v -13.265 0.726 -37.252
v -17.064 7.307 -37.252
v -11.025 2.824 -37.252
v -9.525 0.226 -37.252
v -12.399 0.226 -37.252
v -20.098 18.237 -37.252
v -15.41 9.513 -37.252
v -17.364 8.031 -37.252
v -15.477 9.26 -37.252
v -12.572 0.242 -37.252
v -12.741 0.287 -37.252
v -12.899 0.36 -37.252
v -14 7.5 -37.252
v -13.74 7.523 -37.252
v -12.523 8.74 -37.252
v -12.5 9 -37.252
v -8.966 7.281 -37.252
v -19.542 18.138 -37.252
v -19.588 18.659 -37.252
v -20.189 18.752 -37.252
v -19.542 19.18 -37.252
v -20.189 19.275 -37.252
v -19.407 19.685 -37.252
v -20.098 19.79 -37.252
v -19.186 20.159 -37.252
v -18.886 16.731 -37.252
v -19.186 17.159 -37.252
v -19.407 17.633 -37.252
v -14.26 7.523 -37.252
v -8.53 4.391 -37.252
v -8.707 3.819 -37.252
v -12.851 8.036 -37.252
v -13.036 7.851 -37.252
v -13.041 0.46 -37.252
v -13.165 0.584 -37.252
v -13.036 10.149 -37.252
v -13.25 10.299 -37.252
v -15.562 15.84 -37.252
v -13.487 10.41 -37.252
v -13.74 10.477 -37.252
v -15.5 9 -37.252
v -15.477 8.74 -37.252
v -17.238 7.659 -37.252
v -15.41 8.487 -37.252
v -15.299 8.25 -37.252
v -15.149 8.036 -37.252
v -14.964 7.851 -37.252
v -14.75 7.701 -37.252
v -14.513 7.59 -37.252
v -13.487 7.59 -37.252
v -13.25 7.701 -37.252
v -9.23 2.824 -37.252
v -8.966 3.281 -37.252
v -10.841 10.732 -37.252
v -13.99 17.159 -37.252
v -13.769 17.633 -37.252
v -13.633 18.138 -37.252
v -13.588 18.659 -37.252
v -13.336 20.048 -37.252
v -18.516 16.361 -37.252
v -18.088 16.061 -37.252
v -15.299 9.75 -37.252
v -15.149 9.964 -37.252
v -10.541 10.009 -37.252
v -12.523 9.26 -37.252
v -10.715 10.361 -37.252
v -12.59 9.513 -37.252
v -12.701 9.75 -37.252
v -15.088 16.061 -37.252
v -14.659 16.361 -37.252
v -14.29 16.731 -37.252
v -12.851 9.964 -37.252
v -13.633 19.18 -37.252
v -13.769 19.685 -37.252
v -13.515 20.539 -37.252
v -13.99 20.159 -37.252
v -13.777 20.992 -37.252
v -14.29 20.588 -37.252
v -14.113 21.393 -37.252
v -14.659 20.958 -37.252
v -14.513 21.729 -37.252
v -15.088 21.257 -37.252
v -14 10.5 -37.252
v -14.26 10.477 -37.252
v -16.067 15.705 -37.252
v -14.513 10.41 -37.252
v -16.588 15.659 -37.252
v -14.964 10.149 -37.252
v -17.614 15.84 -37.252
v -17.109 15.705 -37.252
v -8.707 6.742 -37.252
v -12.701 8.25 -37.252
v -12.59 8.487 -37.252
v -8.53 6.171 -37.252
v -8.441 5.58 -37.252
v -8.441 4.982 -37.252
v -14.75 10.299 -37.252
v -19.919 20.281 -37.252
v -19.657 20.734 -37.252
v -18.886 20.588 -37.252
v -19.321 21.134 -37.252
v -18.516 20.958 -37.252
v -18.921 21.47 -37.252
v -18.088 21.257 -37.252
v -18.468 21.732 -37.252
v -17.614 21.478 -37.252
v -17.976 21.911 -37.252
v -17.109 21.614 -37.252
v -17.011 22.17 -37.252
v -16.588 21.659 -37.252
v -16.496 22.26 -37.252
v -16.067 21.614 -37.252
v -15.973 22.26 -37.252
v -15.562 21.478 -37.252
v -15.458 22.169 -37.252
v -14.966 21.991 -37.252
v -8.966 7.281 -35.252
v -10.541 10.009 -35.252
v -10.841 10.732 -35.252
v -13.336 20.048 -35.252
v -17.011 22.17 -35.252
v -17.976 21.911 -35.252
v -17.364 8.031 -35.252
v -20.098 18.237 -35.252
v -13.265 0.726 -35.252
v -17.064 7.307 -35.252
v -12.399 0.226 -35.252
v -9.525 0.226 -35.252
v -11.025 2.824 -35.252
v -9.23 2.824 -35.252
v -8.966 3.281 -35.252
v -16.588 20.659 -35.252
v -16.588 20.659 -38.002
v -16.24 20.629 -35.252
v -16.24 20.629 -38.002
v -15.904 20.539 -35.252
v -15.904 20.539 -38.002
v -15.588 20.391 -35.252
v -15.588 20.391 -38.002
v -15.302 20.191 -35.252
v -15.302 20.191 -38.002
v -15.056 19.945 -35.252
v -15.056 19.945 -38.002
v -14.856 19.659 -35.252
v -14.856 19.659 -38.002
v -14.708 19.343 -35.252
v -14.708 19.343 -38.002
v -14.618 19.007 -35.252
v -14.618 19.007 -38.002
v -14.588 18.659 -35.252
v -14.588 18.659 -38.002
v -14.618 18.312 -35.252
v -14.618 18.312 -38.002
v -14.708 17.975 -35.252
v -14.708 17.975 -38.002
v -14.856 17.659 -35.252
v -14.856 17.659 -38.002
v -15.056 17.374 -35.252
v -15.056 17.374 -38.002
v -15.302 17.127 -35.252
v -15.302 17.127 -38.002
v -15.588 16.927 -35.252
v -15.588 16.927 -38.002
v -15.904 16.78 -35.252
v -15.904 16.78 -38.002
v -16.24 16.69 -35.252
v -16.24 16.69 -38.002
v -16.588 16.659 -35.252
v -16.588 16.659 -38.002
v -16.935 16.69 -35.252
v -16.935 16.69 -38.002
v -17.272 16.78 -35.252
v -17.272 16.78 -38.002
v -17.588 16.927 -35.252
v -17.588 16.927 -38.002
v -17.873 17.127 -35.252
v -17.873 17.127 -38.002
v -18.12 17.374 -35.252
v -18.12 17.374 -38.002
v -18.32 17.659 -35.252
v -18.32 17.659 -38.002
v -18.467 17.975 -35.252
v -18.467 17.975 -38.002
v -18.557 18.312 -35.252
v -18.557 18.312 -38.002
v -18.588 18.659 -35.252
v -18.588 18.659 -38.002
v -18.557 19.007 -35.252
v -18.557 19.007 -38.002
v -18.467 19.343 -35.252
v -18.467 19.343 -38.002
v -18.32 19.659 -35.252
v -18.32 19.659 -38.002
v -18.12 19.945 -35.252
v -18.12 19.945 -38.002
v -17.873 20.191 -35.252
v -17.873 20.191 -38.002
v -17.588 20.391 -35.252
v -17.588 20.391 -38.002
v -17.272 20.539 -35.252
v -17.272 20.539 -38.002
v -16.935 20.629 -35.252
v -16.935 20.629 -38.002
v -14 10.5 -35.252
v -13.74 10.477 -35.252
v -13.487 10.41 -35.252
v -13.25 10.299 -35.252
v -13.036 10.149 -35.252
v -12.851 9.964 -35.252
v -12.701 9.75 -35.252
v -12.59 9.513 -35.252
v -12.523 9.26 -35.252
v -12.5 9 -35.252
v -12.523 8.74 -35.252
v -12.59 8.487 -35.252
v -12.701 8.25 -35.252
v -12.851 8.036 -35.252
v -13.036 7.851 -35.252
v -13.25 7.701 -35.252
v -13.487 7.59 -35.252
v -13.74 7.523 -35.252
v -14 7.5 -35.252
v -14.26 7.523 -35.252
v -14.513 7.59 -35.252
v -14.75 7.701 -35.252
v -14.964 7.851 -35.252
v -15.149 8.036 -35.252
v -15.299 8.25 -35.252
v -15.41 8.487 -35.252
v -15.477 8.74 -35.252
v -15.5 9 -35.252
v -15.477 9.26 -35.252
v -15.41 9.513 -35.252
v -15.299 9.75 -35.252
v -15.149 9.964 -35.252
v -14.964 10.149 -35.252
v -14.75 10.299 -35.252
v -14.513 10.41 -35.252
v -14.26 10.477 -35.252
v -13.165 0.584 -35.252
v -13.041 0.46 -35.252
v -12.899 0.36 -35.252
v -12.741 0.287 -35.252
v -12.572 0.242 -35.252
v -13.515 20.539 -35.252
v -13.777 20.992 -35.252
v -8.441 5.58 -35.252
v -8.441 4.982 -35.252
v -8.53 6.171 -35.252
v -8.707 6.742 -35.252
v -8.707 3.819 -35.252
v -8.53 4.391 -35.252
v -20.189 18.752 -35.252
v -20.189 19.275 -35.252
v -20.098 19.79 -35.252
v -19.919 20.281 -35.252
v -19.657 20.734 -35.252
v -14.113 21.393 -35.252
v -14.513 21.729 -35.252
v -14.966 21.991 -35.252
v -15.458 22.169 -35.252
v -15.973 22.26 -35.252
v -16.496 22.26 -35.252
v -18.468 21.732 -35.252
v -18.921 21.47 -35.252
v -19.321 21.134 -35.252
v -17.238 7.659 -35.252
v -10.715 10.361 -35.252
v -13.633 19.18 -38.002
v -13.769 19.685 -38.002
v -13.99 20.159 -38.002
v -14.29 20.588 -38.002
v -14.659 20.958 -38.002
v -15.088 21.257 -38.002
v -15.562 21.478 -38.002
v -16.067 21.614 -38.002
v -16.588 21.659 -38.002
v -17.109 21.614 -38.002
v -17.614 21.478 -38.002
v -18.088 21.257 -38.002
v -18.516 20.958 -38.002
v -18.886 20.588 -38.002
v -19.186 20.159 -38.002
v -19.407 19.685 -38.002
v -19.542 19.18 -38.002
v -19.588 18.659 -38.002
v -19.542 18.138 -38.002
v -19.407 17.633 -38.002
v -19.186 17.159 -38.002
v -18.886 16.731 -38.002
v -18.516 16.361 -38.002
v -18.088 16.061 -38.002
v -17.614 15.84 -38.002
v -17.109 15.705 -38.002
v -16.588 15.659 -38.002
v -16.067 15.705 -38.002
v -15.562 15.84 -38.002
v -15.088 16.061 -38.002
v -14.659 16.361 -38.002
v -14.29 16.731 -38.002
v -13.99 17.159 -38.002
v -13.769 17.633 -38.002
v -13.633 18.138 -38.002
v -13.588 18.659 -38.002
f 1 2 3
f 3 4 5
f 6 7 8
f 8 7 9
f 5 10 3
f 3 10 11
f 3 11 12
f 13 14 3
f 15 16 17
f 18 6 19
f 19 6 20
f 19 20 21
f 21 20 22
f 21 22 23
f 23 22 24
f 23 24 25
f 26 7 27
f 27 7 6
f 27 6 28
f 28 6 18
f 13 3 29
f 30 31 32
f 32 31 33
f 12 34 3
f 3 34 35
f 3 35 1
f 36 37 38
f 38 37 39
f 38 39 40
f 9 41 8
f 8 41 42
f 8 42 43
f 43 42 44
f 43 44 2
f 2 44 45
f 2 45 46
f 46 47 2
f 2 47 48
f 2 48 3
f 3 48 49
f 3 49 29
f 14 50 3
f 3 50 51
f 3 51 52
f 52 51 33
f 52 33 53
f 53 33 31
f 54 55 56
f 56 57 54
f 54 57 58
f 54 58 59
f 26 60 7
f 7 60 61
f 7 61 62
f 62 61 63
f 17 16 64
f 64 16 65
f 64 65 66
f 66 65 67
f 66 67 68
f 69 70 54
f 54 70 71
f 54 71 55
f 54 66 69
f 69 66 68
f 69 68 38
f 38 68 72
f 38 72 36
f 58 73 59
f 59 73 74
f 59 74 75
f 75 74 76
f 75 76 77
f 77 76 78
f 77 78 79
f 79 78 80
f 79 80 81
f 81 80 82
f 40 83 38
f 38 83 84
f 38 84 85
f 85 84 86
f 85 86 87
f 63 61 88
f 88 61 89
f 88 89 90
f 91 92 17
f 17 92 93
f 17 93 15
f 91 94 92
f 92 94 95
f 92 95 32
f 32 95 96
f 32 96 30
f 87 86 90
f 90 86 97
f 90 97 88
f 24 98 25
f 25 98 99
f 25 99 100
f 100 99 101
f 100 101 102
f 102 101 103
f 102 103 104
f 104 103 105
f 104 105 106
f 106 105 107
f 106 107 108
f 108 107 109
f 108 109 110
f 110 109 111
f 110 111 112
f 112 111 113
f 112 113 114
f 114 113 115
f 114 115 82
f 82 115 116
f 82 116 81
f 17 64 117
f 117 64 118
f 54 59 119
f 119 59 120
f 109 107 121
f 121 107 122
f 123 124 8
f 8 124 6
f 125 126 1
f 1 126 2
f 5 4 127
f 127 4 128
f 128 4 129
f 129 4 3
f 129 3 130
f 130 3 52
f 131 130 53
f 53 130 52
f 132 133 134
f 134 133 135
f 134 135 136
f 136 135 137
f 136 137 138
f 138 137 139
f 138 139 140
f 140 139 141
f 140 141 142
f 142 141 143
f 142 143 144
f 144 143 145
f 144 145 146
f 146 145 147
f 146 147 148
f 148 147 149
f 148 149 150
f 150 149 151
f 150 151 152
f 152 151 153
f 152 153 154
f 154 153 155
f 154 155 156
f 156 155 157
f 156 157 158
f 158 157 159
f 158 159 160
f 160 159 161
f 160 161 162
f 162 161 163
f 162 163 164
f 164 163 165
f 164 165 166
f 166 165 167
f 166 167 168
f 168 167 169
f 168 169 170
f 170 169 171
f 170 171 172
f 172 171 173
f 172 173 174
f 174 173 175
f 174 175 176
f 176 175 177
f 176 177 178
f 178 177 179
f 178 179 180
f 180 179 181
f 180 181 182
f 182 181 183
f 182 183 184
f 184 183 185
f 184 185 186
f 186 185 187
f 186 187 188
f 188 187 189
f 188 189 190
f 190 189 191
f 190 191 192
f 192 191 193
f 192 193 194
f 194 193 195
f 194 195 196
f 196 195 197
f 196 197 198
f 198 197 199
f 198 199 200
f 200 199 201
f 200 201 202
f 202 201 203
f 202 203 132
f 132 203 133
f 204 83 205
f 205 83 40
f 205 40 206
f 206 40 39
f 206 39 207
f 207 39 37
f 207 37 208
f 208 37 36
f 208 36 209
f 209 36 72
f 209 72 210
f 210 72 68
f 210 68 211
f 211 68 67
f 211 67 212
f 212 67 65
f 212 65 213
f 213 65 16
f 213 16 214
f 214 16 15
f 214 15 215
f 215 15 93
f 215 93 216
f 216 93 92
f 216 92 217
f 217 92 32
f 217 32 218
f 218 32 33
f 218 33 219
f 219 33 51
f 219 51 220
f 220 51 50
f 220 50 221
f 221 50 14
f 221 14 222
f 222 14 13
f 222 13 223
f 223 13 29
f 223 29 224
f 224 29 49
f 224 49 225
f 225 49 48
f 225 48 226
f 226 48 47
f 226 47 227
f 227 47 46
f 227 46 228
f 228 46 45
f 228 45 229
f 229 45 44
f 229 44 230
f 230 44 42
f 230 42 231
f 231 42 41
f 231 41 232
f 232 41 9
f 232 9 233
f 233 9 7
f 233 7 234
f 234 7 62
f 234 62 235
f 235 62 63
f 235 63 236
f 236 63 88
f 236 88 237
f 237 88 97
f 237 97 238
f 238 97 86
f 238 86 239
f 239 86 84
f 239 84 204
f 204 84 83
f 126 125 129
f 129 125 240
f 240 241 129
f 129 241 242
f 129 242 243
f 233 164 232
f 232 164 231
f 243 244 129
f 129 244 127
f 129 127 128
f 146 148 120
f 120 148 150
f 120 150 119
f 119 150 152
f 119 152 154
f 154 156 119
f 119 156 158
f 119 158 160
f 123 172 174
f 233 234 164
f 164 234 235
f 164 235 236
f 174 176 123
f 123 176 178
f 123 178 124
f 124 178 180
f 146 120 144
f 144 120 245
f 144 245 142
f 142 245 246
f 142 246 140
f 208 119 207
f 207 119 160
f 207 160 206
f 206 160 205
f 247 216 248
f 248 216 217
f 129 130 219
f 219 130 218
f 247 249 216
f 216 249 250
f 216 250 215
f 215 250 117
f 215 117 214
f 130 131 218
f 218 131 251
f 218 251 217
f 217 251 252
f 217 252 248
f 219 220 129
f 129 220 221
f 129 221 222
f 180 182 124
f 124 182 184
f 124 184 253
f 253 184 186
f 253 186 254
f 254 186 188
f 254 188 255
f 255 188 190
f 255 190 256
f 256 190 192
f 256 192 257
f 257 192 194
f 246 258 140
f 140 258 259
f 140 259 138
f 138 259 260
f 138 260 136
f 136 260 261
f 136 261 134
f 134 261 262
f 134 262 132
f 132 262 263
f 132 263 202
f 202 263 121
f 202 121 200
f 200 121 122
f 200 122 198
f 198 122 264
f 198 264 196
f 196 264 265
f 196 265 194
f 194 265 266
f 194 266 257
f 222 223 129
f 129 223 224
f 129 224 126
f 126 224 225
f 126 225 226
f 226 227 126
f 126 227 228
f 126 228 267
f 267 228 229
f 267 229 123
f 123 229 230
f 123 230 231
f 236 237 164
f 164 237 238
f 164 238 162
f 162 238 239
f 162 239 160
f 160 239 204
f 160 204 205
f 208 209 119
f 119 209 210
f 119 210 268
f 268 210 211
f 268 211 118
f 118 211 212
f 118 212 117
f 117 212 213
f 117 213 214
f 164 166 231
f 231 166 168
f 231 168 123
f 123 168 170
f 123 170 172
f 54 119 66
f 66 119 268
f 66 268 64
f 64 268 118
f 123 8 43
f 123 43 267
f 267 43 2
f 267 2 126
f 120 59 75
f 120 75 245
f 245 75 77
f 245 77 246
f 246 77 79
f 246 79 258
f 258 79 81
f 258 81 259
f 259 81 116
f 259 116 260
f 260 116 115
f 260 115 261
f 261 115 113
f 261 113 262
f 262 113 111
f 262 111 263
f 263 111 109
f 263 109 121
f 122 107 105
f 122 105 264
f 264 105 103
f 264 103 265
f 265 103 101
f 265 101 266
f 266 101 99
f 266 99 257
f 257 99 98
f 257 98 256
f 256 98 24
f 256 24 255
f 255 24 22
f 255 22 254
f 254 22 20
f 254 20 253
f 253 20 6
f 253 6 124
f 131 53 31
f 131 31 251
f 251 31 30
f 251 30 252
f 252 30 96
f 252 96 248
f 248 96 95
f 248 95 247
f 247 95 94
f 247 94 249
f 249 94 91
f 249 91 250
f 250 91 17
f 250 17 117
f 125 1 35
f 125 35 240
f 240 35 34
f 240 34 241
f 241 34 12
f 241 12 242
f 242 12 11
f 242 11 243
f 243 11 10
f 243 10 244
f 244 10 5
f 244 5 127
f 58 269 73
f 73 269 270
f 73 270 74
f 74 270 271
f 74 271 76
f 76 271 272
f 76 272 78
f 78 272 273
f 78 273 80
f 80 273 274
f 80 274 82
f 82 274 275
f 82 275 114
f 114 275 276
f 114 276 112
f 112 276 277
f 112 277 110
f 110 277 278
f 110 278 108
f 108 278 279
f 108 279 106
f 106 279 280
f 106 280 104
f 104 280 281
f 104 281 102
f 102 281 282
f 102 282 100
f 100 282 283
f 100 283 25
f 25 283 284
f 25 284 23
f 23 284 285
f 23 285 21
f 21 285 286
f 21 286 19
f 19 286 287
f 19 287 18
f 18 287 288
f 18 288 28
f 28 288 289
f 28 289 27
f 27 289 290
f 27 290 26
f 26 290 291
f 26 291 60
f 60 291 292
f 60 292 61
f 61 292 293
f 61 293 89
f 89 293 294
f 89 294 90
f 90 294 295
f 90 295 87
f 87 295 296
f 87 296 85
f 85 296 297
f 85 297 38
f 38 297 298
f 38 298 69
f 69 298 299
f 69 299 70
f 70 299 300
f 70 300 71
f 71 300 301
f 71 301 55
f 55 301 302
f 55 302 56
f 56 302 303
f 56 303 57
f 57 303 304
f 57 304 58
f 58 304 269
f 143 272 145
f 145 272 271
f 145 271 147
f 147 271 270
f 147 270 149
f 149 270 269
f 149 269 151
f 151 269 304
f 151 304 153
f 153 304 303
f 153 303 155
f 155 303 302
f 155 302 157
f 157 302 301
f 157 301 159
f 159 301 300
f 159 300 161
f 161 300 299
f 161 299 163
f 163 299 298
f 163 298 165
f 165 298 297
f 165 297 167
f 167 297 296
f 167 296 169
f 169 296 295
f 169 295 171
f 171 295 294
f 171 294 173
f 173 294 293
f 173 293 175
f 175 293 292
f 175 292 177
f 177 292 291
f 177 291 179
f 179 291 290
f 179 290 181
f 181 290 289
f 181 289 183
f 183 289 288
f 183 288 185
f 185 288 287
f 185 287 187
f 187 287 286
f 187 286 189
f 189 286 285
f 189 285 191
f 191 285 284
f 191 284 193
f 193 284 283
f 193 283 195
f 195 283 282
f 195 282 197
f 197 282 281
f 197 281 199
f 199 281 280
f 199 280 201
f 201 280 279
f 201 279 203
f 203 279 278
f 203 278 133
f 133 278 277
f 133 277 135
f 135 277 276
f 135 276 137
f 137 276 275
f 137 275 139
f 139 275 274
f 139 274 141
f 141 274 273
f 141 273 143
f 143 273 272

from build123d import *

# Parameters (mm, degrees)
SKETCH_1_R      = 2
SKETCH_1_R_2    = 1.5
EXTRUDE_1_DEPTH = 2
FILLET_1_R      = 3
FILLET_2_R      = 4
FILLET_3_R      = 1
SKETCH_2_R      = 3
SKETCH_2_R_2    = 2
EXTRUDE_2_DEPTH = 0.75


with BuildPart() as part:
    # 草图1 → 凸台-拉伸1 (new body)
    with BuildSketch(Plane(origin=(0, 0, -37.252464054), x_dir=(0.999999999, -4.5024e-05, 0), z_dir=(0, 0, 1))):
        Polygon((-10.738945167, 10.350396652), (-14.113721921, 22.945234964), (-20.875202705, 21.133501648), (-17.261865242, 7.64834265), (-12.97599562, 0.225770523), (-9.524857048, 0.225770523), (-11.024974023, 2.823779195), (-9.229747105, 2.823860024), (-7.811543717, 5.280515782), align=None)
        with Locations((-16.588595655, 18.658627914)):
            Circle(SKETCH_1_R, mode=Mode.SUBTRACT)
        with Locations((-14.000405204, 8.999369651)):
            Circle(SKETCH_1_R_2, mode=Mode.SUBTRACT)
    extrude(amount=EXTRUDE_1_DEPTH)

    # 圆角1
    fillet_1_edges = [part.edges().sort_by_distance(p)[0] for p in [
        (-10.738479137, 10.350880155, -36.252464054),
        (-14.112688814, 22.945870401, -36.252464054),
        (-20.874251163, 21.134441518, -36.252464054),
        (-17.261520863, 7.649119845, -36.252464054),
    ]]
    fillet(fillet_1_edges, radius=FILLET_1_R)

    # 圆角2
    fillet_2_edges = [part.edges().sort_by_distance(p)[0] for p in [
        (-7.811305958, 5.280867486, -36.252464054),
    ]]
    fillet(fillet_2_edges, radius=FILLET_2_R)

    # 圆角3
    fillet_3_edges = [part.edges().sort_by_distance(p)[0] for p in [
        (-12.975985442, 0.226354757, -36.252464054),
    ]]
    fillet(fillet_3_edges, radius=FILLET_3_R)

    # 草图2 → 凸台-拉伸2 (add)
    with BuildSketch(Plane(origin=(-0.25104956, -0.068074204, -37.252464054), x_dir=(1, 0, 0), z_dir=(0, 0, 1))):
        with Locations((-16.336705988, 18.727448988)):
            Circle(SKETCH_2_R)
        with Locations((-16.336705988, 18.727448988)):
            Circle(SKETCH_2_R_2, mode=Mode.SUBTRACT)
    extrude(amount=-EXTRUDE_2_DEPTH)


solid = part.part
